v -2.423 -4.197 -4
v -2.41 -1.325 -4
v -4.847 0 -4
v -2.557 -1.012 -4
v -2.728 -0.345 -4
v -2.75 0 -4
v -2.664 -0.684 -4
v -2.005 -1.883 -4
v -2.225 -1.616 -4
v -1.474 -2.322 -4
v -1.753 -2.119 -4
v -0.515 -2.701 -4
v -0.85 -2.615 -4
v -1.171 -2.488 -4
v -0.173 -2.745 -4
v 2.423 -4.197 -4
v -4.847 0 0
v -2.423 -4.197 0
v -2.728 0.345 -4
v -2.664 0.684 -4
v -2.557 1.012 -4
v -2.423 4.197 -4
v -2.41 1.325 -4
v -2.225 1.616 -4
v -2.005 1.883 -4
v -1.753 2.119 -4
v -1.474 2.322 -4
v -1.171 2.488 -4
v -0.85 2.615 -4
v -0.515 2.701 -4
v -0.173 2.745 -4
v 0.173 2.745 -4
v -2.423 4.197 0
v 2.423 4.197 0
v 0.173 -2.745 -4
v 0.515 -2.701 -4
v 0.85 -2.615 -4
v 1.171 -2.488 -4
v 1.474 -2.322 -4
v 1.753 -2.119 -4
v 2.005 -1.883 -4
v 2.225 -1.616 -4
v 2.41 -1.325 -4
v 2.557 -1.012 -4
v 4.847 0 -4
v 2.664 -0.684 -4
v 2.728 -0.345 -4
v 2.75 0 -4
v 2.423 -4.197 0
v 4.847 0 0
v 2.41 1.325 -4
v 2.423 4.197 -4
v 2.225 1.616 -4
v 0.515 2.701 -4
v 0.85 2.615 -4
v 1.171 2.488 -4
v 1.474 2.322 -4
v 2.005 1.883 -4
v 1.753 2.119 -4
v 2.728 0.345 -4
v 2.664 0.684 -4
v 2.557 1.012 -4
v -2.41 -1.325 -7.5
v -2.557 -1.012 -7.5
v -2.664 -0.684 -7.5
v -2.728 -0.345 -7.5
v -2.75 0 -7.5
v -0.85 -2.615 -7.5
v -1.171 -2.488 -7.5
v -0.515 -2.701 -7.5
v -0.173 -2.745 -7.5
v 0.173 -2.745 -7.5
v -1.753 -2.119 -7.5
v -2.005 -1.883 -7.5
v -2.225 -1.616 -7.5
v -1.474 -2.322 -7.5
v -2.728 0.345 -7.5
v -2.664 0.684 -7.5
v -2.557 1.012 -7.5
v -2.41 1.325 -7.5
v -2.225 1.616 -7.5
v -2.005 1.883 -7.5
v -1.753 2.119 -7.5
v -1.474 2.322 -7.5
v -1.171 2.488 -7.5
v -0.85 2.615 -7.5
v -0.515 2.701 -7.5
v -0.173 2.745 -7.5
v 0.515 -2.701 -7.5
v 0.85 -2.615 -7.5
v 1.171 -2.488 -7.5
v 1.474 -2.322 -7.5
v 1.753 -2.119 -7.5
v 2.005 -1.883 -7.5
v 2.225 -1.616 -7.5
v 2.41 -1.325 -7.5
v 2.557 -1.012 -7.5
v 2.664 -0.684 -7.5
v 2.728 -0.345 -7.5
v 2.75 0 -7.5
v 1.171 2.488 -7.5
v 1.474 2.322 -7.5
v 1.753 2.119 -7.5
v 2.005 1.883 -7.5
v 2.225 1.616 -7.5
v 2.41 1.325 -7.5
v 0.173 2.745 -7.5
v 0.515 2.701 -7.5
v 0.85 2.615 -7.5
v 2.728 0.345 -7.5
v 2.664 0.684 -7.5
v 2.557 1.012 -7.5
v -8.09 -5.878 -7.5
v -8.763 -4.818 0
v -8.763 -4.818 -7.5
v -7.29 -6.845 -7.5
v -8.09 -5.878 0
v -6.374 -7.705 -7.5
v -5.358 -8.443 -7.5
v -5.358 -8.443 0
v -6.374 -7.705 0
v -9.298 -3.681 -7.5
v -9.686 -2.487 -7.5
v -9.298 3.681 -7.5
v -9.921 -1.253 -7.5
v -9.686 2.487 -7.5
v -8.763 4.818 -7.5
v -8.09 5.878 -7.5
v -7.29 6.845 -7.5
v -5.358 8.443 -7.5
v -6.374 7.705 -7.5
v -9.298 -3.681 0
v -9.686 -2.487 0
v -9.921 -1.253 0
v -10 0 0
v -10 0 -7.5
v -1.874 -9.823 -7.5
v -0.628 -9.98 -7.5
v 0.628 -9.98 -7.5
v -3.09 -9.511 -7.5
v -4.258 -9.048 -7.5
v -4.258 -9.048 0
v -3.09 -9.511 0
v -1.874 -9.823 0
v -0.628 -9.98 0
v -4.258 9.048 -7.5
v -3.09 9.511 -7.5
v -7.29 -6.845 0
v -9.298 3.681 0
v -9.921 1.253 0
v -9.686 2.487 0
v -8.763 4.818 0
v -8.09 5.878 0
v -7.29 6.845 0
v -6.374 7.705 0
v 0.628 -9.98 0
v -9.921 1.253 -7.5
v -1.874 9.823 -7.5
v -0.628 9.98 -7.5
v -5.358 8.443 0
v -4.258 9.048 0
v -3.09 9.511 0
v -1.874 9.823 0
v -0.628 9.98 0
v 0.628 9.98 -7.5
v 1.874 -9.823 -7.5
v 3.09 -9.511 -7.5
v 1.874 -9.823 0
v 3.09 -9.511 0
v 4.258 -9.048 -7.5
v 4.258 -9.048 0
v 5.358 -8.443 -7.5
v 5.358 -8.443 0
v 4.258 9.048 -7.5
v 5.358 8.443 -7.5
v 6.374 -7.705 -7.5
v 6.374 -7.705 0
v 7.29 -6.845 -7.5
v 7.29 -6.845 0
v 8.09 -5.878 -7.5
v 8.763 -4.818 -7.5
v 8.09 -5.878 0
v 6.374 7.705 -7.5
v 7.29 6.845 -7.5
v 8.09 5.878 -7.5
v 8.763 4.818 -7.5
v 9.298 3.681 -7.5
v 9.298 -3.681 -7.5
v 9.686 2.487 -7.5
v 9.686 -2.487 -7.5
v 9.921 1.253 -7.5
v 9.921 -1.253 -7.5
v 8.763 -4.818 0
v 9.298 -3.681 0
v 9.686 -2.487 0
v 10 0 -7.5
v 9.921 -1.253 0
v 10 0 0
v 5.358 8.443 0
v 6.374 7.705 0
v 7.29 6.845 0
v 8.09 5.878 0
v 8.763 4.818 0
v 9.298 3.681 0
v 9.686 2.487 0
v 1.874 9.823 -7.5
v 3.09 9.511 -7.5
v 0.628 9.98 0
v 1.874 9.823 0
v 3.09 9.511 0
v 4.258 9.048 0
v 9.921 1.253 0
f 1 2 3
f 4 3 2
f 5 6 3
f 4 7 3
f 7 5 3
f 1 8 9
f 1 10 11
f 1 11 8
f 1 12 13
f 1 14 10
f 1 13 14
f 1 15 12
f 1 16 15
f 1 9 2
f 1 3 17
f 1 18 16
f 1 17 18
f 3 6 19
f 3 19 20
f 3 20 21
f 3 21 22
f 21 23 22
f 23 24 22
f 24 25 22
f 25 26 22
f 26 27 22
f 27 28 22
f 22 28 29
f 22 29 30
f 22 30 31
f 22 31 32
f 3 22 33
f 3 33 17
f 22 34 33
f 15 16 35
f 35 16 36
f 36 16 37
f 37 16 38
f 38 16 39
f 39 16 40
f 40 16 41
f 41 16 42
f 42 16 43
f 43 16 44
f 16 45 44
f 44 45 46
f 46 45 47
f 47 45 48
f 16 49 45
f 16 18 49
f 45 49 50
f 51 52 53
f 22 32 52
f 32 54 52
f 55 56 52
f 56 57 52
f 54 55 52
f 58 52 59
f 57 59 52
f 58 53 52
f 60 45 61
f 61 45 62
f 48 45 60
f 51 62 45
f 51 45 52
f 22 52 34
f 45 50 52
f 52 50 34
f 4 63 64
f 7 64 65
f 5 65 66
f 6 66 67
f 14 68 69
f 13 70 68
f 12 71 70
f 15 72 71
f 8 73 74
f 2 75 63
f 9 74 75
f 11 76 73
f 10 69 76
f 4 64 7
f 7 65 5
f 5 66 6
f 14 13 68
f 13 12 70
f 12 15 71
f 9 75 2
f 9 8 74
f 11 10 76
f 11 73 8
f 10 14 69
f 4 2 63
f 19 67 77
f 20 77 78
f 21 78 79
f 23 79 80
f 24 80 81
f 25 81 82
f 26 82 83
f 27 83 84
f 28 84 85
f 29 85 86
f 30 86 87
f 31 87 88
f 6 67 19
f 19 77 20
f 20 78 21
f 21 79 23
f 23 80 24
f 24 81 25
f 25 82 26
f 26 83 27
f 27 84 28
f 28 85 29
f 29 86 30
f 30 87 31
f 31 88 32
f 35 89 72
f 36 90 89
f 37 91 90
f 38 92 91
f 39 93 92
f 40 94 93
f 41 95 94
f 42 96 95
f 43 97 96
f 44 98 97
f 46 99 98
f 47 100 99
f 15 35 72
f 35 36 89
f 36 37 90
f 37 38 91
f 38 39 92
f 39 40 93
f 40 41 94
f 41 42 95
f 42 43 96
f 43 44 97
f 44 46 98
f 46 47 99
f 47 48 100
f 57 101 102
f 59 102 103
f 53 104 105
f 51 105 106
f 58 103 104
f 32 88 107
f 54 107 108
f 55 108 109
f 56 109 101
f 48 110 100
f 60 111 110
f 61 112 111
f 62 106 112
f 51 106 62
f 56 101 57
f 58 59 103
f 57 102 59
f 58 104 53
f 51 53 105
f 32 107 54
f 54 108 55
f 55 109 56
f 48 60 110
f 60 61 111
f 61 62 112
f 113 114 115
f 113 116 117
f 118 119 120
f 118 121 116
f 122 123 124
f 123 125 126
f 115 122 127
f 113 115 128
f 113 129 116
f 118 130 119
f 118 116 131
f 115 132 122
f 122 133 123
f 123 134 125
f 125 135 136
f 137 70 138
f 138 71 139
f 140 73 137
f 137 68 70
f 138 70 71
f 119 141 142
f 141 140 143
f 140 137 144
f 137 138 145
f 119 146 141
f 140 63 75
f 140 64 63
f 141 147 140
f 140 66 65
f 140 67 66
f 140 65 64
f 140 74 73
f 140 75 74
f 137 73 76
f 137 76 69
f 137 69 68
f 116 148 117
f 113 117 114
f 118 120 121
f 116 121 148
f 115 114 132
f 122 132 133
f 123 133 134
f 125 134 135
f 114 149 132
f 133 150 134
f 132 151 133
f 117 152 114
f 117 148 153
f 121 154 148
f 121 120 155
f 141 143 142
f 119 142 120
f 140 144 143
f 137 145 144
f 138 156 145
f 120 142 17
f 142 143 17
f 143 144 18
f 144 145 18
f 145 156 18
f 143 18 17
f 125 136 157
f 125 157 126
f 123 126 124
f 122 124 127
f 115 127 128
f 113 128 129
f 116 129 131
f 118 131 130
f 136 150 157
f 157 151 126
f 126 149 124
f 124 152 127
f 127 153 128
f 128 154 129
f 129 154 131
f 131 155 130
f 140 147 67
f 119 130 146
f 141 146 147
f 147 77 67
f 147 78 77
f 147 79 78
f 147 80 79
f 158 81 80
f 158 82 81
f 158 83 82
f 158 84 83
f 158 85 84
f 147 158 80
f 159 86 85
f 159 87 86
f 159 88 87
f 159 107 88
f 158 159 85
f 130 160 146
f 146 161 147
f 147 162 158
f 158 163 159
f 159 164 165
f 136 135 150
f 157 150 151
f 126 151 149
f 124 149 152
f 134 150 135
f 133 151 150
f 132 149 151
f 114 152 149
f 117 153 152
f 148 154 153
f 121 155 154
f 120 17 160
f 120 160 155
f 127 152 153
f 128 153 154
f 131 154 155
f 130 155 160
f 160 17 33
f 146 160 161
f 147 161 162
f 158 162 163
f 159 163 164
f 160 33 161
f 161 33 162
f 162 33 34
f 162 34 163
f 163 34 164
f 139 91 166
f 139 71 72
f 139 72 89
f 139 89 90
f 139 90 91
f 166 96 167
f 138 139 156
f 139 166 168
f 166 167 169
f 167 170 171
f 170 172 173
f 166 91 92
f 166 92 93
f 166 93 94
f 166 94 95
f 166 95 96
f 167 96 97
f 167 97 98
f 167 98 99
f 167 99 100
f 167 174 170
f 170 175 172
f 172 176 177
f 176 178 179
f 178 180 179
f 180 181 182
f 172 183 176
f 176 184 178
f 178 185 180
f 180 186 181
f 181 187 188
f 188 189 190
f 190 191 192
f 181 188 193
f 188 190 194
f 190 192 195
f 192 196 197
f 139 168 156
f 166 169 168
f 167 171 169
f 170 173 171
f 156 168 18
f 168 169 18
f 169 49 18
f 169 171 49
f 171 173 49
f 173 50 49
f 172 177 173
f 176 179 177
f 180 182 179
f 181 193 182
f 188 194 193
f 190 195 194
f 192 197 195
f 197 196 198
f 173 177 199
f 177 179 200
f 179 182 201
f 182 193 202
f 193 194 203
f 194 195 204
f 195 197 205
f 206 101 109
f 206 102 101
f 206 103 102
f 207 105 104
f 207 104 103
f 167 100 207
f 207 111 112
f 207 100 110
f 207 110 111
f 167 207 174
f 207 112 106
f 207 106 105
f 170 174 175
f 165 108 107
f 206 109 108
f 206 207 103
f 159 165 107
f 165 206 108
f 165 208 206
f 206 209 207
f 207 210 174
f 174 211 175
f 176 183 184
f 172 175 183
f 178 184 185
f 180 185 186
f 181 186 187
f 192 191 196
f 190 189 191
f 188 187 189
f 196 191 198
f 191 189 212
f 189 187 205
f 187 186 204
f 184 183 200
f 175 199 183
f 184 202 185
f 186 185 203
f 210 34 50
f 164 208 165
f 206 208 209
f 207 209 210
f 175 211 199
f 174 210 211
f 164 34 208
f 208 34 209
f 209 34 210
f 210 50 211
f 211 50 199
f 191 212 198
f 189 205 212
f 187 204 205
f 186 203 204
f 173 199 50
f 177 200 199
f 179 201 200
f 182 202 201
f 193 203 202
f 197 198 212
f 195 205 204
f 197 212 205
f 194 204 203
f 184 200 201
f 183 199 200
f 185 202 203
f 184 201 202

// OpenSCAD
$fn = 50;


difference() {
	union() {
		translate(v = [0, 0, -7.5000000000]) {
			cylinder(h = 7.5000000000, r = 10.0000000000);
		}
	}
	union() {
		translate(v = [0, 0, 0]) {
			rotate(a = [0, 0, 0]) {
				difference() {
					union() {
						translate(v = [0, 0, -4]) {
							linear_extrude(height = 4) {
								polygon(points = [[4.8468000000, 0.0000000000], [2.4234000000, 4.1974519271], [-2.4234000000, 4.1974519271], [-4.8468000000, 0.0000000000], [-2.4234000000, -4.1974519271], [2.4234000000, -4.1974519271]]);
							}
						}
					}
					union();
				}
			}
		}
		#translate(v = [0, 0, -100.0000000000]) {
			cylinder(h = 200, r = 2.7500000000);
		}
	}
}
